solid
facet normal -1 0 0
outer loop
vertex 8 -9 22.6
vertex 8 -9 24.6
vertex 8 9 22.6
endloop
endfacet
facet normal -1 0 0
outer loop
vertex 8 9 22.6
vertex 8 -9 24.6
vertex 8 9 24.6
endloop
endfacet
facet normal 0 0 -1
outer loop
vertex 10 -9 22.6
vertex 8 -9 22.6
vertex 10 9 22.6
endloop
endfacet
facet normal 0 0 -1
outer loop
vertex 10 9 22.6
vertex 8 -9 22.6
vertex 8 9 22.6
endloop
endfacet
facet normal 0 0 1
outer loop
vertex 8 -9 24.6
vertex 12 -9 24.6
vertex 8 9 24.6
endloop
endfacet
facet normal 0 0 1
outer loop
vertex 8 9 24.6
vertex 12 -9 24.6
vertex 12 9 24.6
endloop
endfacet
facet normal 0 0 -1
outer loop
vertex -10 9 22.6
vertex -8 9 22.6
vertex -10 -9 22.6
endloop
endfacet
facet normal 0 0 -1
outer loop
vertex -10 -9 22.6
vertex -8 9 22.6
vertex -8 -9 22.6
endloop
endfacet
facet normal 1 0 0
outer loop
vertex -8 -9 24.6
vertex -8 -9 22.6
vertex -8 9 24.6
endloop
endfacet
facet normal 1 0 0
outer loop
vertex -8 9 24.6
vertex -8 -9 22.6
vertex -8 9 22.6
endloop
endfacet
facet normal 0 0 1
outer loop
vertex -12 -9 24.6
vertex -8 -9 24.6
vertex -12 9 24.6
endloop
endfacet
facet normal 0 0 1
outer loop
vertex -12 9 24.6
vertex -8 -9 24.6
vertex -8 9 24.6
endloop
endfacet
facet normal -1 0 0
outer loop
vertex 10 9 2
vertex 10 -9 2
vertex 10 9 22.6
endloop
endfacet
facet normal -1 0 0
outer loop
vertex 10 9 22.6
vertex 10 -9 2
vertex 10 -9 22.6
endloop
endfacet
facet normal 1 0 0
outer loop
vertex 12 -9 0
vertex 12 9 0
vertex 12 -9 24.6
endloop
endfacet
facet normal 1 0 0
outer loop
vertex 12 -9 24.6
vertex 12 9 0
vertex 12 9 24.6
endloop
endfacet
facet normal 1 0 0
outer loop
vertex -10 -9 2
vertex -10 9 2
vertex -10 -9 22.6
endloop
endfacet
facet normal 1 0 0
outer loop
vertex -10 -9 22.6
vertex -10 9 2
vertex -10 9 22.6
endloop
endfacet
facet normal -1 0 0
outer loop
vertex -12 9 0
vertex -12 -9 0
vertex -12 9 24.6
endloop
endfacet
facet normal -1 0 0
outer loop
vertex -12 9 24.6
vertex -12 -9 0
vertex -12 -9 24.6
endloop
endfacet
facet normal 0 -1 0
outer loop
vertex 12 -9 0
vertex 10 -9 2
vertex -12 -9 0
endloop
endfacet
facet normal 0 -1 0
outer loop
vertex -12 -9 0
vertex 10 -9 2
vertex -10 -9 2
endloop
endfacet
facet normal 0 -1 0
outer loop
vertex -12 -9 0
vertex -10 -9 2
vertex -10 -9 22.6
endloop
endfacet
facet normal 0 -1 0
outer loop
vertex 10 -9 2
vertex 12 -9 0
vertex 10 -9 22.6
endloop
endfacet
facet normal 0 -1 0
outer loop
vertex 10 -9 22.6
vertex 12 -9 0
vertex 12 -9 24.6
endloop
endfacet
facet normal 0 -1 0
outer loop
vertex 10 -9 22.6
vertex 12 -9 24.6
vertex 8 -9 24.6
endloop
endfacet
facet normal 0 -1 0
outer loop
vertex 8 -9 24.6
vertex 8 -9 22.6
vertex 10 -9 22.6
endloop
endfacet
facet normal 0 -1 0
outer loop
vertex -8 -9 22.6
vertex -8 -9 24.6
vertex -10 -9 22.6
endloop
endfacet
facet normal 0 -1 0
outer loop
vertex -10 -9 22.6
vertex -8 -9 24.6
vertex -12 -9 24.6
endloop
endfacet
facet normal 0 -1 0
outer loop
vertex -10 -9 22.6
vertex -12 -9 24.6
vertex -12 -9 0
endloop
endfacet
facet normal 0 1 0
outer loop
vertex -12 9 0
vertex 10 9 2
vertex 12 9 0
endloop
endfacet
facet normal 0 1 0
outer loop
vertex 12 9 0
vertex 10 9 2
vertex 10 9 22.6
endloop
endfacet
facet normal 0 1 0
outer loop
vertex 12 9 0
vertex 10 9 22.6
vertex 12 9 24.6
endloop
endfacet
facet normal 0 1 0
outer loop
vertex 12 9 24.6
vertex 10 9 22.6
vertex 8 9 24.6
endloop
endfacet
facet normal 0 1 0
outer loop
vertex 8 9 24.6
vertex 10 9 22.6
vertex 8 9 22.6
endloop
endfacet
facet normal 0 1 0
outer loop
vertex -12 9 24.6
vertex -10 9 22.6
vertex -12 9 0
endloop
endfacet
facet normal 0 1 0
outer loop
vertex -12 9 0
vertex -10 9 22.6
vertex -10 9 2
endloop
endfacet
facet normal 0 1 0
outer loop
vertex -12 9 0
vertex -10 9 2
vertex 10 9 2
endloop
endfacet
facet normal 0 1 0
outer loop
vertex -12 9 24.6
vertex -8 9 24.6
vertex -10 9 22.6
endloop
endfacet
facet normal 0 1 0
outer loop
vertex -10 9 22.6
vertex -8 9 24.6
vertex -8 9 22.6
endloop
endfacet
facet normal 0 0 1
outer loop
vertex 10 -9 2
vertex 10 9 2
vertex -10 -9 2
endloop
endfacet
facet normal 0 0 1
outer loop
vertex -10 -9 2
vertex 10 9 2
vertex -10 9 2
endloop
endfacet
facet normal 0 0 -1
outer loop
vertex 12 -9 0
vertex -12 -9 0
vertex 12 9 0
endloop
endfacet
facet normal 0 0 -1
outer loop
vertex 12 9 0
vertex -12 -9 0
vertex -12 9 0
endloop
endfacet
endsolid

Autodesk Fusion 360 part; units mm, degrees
sketch "Sketch1" plane through (0, 0, 0) normal (0, 0, 1) x (1, 0, 0)
  line L0 (10, 9) -> (-10, 9)
  line L1 (-10, 9) -> (-10, -9)
  line L2 (-10, -9) -> (10, -9)
  line L3 (10, -9) -> (10, 9)
  line L4 (10, 9) -> (-10, -9) construction
  line L5 (-10, 9) -> (10, -9) construction
  line L6 (10, 9) -> (12, 9)
  line L7 (12, 9) -> (12, -9)
  line L8 (12, -9) -> (10, -9)
  line L9 (10, -9) -> (10, 9)
  line L10 (-10, 9) -> (-12, 9)
  line L11 (-12, 9) -> (-12, -9)
  line L12 (-12, -9) -> (-10, -9)
  line L13 (-10, -9) -> (-10, 9)
  dimension "d1" = 20
  dimension "d2" = 18
  dimension "d3" = 2
extrude "Extrude1" add sketch "Sketch1" along normal blind 2 contours L0 L1 L2 L3 L9 L13
extrude "Extrude2" add sketch "Sketch1" along normal blind 22.6 contours L3 L6 L7 L8 L9 | L1 L10 L11 L12 L13
sketch "Sketch2" plane through (0, -9, 0) normal (0, -1, 0) x (1, 0, 0)
  line L0 (-12, 0) -> (12, 0)
  line L1 (12, 0) -> (12, 22.6)
  line L2 (12, 22.6) -> (10, 22.6)
  line L3 (10, 22.6) -> (10, 2)
  line L4 (10, 2) -> (-10, 2)
  line L5 (-10, 2) -> (-10, 22.6)
  line L6 (-10, 22.6) -> (-12, 22.6)
  line L7 (-12, 22.6) -> (-12, 0)
  line L8 (-12, 22.6) -> (-8, 22.6)
  line L9 (-8, 22.6) -> (-8, 24.6)
  line L10 (-8, 24.6) -> (-12, 24.6)
  line L11 (-12, 24.6) -> (-12, 22.6)
  line L12 (12, 22.6) -> (8, 22.6)
  line L13 (8, 22.6) -> (8, 24.6)
  line L14 (8, 24.6) -> (12, 24.6)
  line L15 (12, 24.6) -> (12, 22.6)
  dimension "d8" = 4
  dimension "d9" = 2
  dimension "d10" = 4
  dimension "d11" = 2
extrude "Extrude3" add sketch "Sketch2" against normal blind 18 contours L6 L8 L9 L10 L11 | L2 L12 L13 L14 L15
